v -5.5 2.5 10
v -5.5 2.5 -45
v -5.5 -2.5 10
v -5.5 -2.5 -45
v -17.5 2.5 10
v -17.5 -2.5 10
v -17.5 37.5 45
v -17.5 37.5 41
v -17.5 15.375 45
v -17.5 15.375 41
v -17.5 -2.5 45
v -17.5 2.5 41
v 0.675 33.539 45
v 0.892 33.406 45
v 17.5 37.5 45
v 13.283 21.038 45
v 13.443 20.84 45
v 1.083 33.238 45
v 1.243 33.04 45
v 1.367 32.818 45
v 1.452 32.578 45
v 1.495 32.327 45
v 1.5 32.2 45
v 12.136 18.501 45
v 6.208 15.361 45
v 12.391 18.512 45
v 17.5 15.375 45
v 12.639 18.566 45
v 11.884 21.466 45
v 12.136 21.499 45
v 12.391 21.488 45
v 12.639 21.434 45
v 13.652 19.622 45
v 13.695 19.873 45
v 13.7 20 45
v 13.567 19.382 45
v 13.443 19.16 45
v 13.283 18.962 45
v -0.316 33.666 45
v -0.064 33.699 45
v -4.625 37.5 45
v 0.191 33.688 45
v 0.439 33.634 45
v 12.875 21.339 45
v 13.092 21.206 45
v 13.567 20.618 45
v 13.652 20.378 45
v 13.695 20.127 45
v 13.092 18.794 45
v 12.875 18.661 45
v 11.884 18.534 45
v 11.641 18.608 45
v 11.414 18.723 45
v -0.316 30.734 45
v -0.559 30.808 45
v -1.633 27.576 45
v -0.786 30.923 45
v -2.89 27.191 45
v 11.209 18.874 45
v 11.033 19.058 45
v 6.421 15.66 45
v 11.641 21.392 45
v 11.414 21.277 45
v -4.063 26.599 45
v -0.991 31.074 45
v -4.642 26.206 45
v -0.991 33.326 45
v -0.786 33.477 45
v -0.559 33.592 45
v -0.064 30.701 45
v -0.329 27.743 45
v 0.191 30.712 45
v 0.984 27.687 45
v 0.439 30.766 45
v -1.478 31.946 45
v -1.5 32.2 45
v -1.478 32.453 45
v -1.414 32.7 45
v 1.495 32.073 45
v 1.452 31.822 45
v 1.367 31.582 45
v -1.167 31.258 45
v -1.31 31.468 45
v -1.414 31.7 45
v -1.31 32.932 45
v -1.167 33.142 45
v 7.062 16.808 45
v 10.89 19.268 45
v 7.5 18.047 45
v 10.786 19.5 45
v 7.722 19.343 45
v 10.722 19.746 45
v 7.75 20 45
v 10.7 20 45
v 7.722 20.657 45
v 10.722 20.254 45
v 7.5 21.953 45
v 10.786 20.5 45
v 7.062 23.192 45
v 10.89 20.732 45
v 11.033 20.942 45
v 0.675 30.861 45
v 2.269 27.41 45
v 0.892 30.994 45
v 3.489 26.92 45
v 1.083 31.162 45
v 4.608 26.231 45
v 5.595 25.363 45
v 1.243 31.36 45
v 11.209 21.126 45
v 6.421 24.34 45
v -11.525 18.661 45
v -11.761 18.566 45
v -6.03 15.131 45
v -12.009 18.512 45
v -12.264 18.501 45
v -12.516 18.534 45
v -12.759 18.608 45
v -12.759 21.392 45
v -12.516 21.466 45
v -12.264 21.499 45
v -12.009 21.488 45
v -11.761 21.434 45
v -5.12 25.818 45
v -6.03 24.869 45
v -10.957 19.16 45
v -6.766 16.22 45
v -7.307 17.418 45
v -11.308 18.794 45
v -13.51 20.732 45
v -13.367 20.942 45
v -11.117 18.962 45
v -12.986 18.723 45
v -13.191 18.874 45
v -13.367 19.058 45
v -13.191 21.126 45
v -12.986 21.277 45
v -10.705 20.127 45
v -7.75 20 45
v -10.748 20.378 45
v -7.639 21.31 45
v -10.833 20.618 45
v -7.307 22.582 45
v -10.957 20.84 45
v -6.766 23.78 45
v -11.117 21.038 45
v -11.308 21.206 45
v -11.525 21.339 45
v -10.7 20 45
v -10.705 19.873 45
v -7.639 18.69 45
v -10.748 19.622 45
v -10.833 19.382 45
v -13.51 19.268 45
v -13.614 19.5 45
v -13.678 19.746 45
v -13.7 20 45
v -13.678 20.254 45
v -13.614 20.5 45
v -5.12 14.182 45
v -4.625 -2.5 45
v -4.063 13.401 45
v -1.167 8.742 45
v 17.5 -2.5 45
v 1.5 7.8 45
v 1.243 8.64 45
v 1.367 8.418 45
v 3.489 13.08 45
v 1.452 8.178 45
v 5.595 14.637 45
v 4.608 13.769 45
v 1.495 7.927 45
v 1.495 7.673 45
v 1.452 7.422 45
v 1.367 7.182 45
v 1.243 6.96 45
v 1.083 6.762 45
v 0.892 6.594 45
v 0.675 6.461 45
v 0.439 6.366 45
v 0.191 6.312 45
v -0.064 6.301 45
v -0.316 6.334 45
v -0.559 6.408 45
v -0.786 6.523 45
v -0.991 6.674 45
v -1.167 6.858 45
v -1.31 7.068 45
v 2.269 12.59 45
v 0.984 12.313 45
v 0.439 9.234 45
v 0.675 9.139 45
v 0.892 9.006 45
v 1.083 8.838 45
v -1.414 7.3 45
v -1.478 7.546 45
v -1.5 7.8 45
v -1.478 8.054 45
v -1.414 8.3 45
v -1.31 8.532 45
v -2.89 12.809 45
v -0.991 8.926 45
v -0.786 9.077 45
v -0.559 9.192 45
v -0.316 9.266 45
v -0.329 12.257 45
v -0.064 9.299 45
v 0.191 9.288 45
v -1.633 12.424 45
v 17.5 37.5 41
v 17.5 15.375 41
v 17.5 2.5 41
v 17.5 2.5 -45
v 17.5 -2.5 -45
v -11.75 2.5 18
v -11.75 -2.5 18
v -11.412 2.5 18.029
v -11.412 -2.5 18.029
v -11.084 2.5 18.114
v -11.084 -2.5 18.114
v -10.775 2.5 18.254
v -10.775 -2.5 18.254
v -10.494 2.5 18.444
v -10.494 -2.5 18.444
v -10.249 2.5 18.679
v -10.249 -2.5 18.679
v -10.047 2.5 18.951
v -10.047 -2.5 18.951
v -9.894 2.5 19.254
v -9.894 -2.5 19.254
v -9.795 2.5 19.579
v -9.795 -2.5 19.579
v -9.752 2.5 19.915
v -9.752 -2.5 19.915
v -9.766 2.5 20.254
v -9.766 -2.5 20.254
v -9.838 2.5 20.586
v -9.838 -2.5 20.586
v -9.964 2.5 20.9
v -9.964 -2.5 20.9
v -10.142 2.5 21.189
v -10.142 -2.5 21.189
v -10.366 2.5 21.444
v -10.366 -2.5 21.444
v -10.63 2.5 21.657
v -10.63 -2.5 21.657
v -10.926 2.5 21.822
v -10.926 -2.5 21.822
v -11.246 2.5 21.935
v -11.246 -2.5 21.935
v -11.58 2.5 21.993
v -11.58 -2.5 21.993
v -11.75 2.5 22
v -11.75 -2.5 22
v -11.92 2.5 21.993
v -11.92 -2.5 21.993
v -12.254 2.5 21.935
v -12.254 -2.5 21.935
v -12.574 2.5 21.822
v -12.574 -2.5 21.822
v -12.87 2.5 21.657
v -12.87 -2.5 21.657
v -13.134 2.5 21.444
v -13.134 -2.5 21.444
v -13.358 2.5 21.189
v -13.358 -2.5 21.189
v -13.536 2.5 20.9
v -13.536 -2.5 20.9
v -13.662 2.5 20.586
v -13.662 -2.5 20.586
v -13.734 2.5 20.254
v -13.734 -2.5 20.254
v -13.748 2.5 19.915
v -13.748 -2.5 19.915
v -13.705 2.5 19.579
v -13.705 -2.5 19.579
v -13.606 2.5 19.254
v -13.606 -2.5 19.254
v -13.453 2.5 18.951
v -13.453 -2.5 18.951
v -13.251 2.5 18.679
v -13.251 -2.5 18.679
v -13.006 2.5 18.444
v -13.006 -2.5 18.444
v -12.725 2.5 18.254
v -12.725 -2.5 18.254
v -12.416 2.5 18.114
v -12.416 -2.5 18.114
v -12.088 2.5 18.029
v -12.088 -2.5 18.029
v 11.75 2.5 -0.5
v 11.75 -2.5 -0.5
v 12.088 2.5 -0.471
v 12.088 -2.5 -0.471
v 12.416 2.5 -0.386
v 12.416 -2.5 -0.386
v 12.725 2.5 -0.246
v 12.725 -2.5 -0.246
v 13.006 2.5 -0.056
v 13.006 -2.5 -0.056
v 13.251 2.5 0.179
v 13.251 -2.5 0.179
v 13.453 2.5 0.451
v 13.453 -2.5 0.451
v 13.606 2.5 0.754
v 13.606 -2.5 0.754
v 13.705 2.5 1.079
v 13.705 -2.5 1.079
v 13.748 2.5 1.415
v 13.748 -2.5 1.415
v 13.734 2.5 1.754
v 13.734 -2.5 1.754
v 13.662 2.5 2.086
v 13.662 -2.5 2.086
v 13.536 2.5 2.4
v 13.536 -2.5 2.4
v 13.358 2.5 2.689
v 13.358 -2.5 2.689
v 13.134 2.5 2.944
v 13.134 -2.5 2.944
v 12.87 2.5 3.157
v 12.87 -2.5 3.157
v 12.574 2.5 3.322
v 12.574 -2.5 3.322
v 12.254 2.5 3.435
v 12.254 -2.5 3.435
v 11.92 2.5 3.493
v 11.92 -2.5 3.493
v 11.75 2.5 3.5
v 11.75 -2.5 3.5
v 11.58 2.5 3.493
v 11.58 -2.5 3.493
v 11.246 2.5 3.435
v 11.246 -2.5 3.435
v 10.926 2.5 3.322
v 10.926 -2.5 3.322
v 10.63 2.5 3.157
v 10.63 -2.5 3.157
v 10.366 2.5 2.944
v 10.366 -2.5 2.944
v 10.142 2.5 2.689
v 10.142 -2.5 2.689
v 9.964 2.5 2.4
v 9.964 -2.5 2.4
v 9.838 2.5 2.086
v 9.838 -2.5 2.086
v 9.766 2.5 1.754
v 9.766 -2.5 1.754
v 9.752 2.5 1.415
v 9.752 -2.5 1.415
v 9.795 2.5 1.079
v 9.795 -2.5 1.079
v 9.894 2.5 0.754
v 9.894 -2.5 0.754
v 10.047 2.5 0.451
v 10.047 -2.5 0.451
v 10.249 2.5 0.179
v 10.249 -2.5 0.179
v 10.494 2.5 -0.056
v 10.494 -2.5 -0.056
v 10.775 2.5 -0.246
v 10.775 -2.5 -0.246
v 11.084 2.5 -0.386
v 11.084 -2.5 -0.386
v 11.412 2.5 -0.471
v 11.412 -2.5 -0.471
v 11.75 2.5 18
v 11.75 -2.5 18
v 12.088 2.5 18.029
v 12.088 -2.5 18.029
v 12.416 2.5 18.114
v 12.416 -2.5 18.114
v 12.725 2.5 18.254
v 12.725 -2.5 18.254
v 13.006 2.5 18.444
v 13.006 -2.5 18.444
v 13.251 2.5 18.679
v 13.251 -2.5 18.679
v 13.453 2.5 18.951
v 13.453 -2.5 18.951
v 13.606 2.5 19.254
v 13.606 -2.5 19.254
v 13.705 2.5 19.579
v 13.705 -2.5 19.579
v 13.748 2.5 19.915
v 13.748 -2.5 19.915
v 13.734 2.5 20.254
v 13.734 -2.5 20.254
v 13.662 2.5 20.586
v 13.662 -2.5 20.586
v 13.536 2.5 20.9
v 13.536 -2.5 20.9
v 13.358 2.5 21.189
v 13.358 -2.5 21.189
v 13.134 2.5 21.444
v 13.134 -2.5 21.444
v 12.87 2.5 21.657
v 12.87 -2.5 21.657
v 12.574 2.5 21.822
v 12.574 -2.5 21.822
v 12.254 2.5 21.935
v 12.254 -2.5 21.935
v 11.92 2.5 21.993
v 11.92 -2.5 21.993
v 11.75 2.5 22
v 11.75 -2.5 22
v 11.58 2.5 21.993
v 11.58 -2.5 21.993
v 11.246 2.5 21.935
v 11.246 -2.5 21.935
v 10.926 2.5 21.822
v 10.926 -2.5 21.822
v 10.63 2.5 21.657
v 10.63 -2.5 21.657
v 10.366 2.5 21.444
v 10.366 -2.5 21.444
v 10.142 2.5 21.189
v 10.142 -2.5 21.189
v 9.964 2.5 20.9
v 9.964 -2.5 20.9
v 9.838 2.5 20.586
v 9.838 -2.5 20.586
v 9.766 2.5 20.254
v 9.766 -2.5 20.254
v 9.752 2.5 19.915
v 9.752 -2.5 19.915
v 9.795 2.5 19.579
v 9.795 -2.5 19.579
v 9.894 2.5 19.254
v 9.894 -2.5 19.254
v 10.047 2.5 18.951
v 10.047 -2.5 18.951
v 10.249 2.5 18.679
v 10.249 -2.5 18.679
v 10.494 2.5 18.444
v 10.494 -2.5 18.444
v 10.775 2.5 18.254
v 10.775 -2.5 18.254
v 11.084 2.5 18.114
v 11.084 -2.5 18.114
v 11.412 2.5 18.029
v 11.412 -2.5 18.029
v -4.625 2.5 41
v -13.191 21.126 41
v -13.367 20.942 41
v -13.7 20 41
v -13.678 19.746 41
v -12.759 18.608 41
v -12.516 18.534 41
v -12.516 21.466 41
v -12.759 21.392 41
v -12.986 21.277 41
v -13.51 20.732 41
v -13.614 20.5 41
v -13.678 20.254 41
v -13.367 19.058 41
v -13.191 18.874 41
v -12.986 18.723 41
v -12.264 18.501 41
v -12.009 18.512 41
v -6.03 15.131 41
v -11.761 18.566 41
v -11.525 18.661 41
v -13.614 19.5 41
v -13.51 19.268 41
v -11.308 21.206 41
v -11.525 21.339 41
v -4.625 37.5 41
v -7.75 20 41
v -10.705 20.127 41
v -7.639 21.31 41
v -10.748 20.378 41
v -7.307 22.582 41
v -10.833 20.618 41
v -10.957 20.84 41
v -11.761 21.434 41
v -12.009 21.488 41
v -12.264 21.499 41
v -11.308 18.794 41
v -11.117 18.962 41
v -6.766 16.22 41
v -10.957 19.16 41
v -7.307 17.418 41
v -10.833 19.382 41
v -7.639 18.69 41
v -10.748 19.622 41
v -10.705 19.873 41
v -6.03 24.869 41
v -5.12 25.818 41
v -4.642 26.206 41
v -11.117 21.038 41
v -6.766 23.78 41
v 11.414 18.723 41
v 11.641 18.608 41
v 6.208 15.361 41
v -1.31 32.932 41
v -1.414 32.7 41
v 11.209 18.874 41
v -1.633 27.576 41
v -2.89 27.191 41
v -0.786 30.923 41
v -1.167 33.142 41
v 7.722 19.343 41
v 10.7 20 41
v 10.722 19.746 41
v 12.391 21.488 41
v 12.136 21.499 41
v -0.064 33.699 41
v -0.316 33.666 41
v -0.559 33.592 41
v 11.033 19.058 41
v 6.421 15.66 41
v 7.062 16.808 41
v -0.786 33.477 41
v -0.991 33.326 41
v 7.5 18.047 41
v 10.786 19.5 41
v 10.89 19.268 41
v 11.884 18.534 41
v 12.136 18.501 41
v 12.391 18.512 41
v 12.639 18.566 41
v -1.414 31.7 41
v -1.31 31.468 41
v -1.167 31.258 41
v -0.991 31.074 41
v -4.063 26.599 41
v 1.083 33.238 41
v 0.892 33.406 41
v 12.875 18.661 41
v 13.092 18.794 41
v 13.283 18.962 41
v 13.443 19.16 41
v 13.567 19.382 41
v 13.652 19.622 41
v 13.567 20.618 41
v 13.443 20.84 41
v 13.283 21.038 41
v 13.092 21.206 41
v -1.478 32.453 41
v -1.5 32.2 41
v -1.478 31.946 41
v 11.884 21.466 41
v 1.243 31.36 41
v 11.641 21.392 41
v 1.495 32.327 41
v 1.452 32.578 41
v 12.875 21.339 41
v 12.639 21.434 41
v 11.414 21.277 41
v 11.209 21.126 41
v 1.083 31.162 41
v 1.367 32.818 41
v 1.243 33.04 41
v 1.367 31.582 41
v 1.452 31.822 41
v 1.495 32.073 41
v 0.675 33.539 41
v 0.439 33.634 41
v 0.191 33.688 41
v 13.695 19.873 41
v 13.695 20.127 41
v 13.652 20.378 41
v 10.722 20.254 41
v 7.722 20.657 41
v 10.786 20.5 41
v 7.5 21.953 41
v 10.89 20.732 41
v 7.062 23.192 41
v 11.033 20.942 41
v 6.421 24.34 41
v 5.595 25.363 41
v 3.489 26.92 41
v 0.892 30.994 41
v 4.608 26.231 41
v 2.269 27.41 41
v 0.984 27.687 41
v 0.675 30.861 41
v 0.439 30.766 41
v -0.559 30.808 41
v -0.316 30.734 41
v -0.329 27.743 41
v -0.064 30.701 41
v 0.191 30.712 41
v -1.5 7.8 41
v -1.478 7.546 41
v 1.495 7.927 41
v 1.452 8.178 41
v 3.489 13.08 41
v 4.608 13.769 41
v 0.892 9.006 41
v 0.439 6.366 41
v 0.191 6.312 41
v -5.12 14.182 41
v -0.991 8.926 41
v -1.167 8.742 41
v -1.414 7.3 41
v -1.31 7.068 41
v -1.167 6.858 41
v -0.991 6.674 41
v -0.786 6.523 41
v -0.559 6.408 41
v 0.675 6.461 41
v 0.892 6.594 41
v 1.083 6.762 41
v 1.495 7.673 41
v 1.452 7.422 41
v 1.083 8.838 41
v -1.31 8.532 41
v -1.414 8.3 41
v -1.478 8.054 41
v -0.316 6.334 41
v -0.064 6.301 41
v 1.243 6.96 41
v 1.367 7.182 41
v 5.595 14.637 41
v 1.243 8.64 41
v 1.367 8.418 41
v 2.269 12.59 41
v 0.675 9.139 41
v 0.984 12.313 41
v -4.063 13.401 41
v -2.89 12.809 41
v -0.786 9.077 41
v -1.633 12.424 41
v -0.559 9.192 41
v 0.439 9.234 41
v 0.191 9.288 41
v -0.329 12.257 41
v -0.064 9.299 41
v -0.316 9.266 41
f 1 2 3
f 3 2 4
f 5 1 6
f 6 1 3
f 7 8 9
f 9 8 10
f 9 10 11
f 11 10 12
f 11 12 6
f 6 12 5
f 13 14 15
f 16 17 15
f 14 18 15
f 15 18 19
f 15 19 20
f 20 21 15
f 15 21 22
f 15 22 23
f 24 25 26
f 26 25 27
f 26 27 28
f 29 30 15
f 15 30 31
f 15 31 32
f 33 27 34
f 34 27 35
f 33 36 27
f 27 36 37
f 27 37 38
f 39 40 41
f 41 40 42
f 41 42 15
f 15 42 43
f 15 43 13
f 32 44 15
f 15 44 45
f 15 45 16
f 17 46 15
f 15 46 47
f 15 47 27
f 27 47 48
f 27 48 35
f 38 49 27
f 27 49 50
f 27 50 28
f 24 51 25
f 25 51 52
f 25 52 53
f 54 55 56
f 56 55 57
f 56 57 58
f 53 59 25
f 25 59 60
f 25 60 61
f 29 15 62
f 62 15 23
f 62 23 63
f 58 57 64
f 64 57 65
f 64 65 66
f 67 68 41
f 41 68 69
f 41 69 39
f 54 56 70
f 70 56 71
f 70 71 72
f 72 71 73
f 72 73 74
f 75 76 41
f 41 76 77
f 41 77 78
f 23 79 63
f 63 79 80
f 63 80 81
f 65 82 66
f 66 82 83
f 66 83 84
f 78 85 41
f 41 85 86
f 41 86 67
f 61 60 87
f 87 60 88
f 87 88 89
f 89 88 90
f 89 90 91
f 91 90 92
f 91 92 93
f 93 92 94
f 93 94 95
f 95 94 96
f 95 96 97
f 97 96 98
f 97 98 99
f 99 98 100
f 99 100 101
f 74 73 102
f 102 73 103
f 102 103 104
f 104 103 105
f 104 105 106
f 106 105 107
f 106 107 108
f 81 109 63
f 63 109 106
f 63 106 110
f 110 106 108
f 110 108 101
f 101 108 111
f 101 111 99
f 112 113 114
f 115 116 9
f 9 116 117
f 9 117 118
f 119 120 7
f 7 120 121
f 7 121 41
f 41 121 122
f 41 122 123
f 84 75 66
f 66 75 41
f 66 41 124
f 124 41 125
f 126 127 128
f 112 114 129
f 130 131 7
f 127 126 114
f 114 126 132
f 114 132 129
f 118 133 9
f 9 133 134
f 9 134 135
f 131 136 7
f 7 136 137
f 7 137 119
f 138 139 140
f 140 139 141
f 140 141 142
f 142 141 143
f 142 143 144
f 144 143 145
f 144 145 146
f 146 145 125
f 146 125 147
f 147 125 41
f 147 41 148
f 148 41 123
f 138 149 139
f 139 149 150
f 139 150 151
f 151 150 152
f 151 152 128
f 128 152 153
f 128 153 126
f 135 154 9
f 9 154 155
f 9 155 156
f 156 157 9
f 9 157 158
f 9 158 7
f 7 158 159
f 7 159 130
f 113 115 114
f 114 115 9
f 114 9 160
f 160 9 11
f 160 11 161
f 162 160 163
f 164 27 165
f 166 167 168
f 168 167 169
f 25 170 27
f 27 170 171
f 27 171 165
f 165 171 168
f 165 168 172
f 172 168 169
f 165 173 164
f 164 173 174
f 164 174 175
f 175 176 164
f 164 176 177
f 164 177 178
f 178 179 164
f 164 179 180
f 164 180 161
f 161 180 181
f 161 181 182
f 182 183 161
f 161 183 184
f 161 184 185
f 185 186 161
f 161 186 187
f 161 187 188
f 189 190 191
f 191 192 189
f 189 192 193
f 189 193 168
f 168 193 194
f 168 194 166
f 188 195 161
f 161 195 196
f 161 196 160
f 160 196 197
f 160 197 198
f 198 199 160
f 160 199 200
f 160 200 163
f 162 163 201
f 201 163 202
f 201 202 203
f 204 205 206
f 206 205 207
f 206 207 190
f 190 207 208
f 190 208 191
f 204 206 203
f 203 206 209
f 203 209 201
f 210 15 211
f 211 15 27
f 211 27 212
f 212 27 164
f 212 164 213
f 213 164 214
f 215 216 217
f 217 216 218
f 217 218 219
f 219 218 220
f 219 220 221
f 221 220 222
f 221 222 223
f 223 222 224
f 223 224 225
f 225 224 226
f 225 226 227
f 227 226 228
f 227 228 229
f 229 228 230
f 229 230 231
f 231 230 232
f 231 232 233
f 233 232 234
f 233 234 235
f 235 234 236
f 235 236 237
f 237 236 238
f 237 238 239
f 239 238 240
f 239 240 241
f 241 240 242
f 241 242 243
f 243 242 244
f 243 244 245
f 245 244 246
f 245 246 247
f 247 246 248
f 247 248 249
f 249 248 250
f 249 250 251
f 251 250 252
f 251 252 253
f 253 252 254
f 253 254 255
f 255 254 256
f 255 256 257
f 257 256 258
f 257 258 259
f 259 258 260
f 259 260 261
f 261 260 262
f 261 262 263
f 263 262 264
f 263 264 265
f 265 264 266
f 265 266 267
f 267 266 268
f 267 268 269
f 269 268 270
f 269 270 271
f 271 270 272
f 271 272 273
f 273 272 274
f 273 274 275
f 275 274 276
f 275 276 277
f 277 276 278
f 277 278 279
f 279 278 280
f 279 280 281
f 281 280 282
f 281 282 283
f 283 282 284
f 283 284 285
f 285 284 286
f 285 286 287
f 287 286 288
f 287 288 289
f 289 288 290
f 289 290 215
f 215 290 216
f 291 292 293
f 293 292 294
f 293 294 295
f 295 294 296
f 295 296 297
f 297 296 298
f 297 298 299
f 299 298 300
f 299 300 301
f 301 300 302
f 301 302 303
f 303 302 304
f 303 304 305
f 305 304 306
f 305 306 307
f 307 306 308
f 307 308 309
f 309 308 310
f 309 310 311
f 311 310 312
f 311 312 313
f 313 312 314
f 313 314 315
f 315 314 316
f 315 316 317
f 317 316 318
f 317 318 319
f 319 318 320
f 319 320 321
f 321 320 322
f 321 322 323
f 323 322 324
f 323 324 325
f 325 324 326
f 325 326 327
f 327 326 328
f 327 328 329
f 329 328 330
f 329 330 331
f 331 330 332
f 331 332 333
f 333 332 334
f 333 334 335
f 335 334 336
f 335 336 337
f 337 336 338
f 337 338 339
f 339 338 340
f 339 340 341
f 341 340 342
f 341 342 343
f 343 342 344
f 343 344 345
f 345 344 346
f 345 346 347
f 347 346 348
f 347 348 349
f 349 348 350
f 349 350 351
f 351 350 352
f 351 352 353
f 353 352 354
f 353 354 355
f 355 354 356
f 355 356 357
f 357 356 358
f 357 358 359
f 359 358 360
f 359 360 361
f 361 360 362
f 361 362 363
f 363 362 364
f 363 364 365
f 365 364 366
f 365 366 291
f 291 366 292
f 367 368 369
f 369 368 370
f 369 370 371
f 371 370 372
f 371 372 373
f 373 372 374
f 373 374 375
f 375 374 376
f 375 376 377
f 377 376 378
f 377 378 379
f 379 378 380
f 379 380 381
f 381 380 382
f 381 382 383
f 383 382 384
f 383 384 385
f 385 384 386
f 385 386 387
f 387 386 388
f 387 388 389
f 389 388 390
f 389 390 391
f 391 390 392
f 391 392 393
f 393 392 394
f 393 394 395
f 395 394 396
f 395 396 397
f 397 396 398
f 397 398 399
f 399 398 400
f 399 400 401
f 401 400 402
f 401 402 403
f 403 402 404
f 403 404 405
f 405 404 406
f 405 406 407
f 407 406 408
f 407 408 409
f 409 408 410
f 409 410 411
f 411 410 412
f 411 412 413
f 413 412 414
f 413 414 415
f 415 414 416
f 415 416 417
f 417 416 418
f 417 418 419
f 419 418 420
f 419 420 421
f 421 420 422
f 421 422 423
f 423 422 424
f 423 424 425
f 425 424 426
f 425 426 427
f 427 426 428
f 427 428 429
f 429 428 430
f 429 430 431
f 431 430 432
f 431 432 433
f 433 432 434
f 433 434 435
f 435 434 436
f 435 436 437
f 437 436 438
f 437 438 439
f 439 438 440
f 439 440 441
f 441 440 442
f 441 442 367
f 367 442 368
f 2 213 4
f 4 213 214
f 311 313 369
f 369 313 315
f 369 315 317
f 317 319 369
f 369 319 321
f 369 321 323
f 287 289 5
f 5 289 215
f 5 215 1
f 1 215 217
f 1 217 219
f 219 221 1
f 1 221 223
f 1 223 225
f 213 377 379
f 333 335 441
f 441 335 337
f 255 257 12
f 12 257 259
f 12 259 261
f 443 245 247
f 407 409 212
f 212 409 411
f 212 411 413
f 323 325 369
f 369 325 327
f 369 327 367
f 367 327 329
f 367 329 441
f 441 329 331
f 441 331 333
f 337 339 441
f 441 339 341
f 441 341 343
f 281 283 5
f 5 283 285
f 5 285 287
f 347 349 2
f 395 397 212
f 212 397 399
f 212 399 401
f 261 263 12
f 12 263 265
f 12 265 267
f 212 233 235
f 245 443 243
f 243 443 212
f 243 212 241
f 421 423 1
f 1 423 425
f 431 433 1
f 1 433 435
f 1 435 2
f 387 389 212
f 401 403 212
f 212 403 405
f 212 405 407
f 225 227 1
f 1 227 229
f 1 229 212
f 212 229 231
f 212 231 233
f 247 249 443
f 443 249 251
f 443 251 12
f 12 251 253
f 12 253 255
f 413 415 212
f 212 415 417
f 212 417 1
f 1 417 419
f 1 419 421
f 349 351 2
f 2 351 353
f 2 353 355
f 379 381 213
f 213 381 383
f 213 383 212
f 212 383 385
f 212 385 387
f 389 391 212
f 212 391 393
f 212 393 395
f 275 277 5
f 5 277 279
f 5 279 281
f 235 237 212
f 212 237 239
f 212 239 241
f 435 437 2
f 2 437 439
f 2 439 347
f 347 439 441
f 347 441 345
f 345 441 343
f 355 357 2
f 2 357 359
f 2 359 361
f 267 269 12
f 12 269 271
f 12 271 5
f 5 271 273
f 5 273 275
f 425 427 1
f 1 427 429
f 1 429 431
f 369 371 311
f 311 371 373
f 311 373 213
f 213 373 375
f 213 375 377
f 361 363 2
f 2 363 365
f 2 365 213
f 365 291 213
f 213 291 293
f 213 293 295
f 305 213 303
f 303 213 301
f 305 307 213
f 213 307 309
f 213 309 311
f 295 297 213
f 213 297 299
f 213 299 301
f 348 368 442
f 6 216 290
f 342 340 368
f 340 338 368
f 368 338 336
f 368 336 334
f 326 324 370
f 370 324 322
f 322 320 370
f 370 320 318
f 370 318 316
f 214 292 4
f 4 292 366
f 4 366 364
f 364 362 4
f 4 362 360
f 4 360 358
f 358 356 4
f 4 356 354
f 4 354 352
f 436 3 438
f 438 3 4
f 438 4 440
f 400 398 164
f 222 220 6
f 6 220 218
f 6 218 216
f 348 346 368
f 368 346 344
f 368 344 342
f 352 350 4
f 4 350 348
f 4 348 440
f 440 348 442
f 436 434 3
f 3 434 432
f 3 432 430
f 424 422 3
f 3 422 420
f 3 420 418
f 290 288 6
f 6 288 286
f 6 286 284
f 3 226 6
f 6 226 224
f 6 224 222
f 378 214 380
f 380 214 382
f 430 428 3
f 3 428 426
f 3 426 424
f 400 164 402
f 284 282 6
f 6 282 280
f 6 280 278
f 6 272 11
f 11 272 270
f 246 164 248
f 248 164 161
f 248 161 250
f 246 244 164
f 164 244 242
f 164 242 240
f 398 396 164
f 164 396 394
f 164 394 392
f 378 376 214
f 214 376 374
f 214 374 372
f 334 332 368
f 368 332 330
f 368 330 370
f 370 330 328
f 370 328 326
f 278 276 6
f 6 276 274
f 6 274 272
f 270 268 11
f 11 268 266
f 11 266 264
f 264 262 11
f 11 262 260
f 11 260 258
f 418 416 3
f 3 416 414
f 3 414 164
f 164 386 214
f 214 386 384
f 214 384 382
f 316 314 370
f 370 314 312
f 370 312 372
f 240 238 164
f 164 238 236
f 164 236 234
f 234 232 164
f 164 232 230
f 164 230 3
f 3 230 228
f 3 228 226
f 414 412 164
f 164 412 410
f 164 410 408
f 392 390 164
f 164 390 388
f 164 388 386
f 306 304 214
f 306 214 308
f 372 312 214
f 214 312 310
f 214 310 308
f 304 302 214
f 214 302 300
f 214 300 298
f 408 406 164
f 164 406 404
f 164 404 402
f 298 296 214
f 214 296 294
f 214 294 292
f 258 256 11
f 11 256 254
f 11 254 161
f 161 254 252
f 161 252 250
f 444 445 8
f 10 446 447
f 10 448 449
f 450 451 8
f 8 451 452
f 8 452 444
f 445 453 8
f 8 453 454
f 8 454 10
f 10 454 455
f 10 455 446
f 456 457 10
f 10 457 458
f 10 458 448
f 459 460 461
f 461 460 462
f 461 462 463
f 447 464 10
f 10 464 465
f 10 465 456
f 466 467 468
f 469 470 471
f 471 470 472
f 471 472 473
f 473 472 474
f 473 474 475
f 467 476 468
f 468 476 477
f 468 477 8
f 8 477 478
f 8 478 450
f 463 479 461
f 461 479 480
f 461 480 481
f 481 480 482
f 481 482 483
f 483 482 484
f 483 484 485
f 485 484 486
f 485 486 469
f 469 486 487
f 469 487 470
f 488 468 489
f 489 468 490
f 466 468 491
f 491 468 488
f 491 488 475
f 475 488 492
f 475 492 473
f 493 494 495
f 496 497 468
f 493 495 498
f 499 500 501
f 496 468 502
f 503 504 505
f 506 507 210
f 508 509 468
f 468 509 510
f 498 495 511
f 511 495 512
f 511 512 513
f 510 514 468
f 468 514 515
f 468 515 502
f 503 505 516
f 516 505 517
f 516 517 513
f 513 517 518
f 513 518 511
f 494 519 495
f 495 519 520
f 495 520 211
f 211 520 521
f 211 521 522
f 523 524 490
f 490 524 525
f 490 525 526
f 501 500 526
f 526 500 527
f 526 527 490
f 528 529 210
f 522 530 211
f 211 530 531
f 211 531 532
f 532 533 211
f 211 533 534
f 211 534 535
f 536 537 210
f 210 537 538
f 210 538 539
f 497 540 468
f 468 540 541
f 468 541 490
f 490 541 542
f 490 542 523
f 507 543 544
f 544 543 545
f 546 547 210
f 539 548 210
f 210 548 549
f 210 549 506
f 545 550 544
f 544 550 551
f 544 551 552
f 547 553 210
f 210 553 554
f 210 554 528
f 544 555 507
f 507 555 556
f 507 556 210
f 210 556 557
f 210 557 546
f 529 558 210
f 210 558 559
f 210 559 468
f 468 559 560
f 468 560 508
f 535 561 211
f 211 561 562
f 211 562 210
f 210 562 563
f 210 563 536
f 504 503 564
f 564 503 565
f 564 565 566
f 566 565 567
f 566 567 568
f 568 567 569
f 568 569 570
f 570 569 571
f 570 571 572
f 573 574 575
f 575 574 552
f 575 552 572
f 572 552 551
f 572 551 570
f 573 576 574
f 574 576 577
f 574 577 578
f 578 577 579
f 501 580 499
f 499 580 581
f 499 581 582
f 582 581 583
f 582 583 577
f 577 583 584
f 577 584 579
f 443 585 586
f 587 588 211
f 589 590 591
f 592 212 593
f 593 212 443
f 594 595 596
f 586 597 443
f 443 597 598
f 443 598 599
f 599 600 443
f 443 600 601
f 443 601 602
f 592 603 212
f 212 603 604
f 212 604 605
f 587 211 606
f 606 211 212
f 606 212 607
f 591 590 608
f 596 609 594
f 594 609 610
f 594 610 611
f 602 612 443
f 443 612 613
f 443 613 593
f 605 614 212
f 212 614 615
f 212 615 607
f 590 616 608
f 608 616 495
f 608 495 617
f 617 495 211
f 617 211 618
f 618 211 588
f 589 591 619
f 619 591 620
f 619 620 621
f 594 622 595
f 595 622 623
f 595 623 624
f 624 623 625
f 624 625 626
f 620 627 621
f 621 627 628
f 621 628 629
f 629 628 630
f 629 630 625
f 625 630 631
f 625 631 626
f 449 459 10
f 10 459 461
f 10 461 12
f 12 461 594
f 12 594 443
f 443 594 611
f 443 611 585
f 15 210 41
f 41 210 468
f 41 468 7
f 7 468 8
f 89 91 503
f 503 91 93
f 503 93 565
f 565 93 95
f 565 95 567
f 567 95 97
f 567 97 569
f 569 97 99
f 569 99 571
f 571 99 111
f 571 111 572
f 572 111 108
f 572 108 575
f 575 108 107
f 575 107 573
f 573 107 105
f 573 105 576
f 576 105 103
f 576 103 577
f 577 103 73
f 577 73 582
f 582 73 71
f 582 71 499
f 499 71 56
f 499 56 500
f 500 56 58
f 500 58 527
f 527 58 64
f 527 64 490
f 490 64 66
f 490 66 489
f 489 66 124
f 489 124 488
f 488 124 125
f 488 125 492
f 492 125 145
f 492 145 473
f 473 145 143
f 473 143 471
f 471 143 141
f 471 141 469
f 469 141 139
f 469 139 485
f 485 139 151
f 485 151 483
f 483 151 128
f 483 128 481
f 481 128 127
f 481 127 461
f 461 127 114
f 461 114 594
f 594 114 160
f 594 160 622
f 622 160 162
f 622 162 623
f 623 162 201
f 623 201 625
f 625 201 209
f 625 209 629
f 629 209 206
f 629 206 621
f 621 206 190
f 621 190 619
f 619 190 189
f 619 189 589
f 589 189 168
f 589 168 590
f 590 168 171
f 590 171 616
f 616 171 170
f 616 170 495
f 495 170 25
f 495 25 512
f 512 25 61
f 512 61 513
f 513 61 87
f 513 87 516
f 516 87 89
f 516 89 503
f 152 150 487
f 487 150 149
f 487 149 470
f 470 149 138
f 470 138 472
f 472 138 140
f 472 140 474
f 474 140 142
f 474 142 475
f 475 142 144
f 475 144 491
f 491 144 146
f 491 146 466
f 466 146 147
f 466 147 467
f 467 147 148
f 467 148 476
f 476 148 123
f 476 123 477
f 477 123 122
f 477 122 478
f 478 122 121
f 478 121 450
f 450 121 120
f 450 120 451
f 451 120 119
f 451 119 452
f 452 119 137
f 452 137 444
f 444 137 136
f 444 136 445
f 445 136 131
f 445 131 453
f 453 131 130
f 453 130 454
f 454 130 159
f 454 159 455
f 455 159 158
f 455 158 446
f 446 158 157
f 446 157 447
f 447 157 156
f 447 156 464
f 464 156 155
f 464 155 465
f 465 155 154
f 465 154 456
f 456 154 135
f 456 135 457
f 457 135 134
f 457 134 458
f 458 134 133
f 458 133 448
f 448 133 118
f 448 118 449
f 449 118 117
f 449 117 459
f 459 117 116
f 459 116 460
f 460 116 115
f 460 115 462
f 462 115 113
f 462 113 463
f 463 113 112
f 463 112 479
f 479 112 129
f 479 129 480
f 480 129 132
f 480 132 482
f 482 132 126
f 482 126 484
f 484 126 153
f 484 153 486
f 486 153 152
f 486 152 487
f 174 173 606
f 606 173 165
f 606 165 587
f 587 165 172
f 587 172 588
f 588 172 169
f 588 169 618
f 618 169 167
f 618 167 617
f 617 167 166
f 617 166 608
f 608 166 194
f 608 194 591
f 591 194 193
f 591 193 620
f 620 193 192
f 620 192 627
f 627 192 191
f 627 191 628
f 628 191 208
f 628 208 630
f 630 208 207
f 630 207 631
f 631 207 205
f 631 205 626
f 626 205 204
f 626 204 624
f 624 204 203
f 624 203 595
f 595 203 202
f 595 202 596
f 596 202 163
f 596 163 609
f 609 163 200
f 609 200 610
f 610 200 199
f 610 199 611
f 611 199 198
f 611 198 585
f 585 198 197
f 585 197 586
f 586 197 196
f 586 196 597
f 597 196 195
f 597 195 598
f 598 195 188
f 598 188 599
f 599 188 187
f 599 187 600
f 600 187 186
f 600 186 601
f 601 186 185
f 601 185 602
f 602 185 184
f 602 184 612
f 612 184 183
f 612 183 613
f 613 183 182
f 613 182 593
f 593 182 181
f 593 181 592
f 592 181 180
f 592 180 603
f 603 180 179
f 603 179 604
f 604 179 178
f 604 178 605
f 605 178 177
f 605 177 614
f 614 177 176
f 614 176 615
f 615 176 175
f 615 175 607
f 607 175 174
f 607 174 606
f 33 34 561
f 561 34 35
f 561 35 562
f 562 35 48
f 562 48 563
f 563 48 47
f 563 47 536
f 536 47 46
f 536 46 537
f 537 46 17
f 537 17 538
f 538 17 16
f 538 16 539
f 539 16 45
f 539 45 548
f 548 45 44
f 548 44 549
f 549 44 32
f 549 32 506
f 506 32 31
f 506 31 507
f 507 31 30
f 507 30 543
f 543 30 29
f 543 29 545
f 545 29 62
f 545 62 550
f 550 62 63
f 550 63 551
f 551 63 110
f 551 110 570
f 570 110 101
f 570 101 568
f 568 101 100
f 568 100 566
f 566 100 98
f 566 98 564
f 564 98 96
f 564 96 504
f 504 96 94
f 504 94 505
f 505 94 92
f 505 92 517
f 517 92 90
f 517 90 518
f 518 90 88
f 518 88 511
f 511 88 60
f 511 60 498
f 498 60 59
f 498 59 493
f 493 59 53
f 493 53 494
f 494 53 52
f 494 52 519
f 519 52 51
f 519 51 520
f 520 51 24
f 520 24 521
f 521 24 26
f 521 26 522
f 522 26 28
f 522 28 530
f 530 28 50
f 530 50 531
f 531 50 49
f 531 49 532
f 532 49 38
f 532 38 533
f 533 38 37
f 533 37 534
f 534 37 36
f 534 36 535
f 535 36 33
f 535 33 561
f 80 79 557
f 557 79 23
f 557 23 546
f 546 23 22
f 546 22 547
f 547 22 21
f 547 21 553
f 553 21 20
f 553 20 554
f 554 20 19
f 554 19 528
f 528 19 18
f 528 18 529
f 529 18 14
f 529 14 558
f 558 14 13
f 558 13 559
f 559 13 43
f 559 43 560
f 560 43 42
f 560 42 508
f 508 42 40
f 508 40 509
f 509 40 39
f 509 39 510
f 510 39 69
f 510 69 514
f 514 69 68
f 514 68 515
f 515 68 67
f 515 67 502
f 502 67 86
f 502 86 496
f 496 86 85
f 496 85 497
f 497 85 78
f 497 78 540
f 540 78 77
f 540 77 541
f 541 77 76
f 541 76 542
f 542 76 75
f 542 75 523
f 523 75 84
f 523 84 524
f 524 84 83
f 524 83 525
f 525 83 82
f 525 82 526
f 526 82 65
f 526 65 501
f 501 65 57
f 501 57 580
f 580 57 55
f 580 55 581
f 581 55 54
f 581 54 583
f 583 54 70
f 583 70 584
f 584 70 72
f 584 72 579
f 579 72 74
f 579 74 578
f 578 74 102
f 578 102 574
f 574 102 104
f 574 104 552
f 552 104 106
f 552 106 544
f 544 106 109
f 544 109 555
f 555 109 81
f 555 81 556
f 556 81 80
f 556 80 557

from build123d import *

# Parameters (mm, degrees)
SKETCH1_R           = 2
BOSS_EXTRUDE1_DEPTH = 2.5
SKETCH2_W           = 35
SKETCH2_H           = 4
BOSS_EXTRUDE2_DEPTH = 35
CUT_EXTRUDE1_REACH  = 6
SKETCH3_R           = 1.5
SKETCH3_R_2         = 7.75


with BuildPart() as part:
    # Sketch1 → Boss-Extrude1 (new body, symmetric)
    with BuildSketch(Plane(origin=(0, 0, 0), x_dir=(1, 0, 0), z_dir=(0, 1, 0))):
        Polygon((17.5, 45), (-5.5, 45), (-5.5, -10), (-17.5, -10), (-17.5, -45), (17.5, -45), align=None)
        with Locations((-11.75, -20)):
            Circle(SKETCH1_R, mode=Mode.SUBTRACT)
        with BuildLine():
            ThreePointArc((13.75, -20), (11.75, -22), (9.75, -20))
            ThreePointArc((9.75, -20), (11.75, -18), (13.75, -20))
        make_face(mode=Mode.SUBTRACT)
        with Locations((11.75, -1.5)):
            Circle(SKETCH1_R, mode=Mode.SUBTRACT)
    extrude(amount=BOSS_EXTRUDE1_DEPTH, both=True)

    # Sketch2 → Boss-Extrude2 (add)
    with BuildSketch(Plane(origin=(0, 2.5, 0), x_dir=(1, 0, 0), z_dir=(0, 1, 0))):
        with Locations((0, -43)):
            Rectangle(SKETCH2_W, SKETCH2_H)
    extrude(amount=BOSS_EXTRUDE2_DEPTH)

    # Sketch3 → Cut-Extrude1 (cut, up to next)
    with BuildSketch(Plane(origin=(0, 0, 41), x_dir=(-1, 0, 0), z_dir=(0, 0, -1)), mode=Mode.PRIVATE) as cut_extrude1_sk1:
        with Locations((-12.2, 20)):
            Circle(SKETCH3_R)
    cut_extrude1_tool1 = extrude(cut_extrude1_sk1.sketch, amount=-CUT_EXTRUDE1_REACH, mode=Mode.PRIVATE) & part.part
    add(cut_extrude1_tool1.solids().sort_by_distance((12.2, 20, 41))[0], mode=Mode.SUBTRACT)
    # Sketch3 → Cut-Extrude1 (cut, up to next)
    with BuildSketch(Plane(origin=(0, 0, 41), x_dir=(-1, 0, 0), z_dir=(0, 0, -1)), mode=Mode.PRIVATE) as cut_extrude1_sk2:
        with Locations((0, 32.2)):
            Circle(SKETCH3_R)
    cut_extrude1_tool2 = extrude(cut_extrude1_sk2.sketch, amount=-CUT_EXTRUDE1_REACH, mode=Mode.PRIVATE) & part.part
    add(cut_extrude1_tool2.solids().sort_by_distance((0, 32.2, 41))[0], mode=Mode.SUBTRACT)
    # Sketch3 → Cut-Extrude1 (cut, up to next)
    with BuildSketch(Plane(origin=(0, 0, 41), x_dir=(-1, 0, 0), z_dir=(0, 0, -1)), mode=Mode.PRIVATE) as cut_extrude1_sk3:
        with Locations((12.2, 20)):
            Circle(SKETCH3_R)
    cut_extrude1_tool3 = extrude(cut_extrude1_sk3.sketch, amount=-CUT_EXTRUDE1_REACH, mode=Mode.PRIVATE) & part.part
    add(cut_extrude1_tool3.solids().sort_by_distance((-12.2, 20, 41))[0], mode=Mode.SUBTRACT)
    # Sketch3 → Cut-Extrude1 (cut, up to next)
    with BuildSketch(Plane(origin=(0, 0, 41), x_dir=(-1, 0, 0), z_dir=(0, 0, -1)), mode=Mode.PRIVATE) as cut_extrude1_sk4:
        with Locations((0, 20)):
            Circle(SKETCH3_R_2)
    cut_extrude1_tool4 = extrude(cut_extrude1_sk4.sketch, amount=-CUT_EXTRUDE1_REACH, mode=Mode.PRIVATE) & part.part
    add(cut_extrude1_tool4.solids().sort_by_distance((0, 20, 41))[0], mode=Mode.SUBTRACT)
    # Sketch3 → Cut-Extrude1 (cut, up to next)
    with BuildSketch(Plane(origin=(0, 0, 41), x_dir=(-1, 0, 0), z_dir=(0, 0, -1)), mode=Mode.PRIVATE) as cut_extrude1_sk5:
        with Locations((0, 7.8)):
            Circle(SKETCH3_R)
    cut_extrude1_tool5 = extrude(cut_extrude1_sk5.sketch, amount=-CUT_EXTRUDE1_REACH, mode=Mode.PRIVATE) & part.part
    add(cut_extrude1_tool5.solids().sort_by_distance((0, 7.8, 41))[0], mode=Mode.SUBTRACT)


solid = part.part
